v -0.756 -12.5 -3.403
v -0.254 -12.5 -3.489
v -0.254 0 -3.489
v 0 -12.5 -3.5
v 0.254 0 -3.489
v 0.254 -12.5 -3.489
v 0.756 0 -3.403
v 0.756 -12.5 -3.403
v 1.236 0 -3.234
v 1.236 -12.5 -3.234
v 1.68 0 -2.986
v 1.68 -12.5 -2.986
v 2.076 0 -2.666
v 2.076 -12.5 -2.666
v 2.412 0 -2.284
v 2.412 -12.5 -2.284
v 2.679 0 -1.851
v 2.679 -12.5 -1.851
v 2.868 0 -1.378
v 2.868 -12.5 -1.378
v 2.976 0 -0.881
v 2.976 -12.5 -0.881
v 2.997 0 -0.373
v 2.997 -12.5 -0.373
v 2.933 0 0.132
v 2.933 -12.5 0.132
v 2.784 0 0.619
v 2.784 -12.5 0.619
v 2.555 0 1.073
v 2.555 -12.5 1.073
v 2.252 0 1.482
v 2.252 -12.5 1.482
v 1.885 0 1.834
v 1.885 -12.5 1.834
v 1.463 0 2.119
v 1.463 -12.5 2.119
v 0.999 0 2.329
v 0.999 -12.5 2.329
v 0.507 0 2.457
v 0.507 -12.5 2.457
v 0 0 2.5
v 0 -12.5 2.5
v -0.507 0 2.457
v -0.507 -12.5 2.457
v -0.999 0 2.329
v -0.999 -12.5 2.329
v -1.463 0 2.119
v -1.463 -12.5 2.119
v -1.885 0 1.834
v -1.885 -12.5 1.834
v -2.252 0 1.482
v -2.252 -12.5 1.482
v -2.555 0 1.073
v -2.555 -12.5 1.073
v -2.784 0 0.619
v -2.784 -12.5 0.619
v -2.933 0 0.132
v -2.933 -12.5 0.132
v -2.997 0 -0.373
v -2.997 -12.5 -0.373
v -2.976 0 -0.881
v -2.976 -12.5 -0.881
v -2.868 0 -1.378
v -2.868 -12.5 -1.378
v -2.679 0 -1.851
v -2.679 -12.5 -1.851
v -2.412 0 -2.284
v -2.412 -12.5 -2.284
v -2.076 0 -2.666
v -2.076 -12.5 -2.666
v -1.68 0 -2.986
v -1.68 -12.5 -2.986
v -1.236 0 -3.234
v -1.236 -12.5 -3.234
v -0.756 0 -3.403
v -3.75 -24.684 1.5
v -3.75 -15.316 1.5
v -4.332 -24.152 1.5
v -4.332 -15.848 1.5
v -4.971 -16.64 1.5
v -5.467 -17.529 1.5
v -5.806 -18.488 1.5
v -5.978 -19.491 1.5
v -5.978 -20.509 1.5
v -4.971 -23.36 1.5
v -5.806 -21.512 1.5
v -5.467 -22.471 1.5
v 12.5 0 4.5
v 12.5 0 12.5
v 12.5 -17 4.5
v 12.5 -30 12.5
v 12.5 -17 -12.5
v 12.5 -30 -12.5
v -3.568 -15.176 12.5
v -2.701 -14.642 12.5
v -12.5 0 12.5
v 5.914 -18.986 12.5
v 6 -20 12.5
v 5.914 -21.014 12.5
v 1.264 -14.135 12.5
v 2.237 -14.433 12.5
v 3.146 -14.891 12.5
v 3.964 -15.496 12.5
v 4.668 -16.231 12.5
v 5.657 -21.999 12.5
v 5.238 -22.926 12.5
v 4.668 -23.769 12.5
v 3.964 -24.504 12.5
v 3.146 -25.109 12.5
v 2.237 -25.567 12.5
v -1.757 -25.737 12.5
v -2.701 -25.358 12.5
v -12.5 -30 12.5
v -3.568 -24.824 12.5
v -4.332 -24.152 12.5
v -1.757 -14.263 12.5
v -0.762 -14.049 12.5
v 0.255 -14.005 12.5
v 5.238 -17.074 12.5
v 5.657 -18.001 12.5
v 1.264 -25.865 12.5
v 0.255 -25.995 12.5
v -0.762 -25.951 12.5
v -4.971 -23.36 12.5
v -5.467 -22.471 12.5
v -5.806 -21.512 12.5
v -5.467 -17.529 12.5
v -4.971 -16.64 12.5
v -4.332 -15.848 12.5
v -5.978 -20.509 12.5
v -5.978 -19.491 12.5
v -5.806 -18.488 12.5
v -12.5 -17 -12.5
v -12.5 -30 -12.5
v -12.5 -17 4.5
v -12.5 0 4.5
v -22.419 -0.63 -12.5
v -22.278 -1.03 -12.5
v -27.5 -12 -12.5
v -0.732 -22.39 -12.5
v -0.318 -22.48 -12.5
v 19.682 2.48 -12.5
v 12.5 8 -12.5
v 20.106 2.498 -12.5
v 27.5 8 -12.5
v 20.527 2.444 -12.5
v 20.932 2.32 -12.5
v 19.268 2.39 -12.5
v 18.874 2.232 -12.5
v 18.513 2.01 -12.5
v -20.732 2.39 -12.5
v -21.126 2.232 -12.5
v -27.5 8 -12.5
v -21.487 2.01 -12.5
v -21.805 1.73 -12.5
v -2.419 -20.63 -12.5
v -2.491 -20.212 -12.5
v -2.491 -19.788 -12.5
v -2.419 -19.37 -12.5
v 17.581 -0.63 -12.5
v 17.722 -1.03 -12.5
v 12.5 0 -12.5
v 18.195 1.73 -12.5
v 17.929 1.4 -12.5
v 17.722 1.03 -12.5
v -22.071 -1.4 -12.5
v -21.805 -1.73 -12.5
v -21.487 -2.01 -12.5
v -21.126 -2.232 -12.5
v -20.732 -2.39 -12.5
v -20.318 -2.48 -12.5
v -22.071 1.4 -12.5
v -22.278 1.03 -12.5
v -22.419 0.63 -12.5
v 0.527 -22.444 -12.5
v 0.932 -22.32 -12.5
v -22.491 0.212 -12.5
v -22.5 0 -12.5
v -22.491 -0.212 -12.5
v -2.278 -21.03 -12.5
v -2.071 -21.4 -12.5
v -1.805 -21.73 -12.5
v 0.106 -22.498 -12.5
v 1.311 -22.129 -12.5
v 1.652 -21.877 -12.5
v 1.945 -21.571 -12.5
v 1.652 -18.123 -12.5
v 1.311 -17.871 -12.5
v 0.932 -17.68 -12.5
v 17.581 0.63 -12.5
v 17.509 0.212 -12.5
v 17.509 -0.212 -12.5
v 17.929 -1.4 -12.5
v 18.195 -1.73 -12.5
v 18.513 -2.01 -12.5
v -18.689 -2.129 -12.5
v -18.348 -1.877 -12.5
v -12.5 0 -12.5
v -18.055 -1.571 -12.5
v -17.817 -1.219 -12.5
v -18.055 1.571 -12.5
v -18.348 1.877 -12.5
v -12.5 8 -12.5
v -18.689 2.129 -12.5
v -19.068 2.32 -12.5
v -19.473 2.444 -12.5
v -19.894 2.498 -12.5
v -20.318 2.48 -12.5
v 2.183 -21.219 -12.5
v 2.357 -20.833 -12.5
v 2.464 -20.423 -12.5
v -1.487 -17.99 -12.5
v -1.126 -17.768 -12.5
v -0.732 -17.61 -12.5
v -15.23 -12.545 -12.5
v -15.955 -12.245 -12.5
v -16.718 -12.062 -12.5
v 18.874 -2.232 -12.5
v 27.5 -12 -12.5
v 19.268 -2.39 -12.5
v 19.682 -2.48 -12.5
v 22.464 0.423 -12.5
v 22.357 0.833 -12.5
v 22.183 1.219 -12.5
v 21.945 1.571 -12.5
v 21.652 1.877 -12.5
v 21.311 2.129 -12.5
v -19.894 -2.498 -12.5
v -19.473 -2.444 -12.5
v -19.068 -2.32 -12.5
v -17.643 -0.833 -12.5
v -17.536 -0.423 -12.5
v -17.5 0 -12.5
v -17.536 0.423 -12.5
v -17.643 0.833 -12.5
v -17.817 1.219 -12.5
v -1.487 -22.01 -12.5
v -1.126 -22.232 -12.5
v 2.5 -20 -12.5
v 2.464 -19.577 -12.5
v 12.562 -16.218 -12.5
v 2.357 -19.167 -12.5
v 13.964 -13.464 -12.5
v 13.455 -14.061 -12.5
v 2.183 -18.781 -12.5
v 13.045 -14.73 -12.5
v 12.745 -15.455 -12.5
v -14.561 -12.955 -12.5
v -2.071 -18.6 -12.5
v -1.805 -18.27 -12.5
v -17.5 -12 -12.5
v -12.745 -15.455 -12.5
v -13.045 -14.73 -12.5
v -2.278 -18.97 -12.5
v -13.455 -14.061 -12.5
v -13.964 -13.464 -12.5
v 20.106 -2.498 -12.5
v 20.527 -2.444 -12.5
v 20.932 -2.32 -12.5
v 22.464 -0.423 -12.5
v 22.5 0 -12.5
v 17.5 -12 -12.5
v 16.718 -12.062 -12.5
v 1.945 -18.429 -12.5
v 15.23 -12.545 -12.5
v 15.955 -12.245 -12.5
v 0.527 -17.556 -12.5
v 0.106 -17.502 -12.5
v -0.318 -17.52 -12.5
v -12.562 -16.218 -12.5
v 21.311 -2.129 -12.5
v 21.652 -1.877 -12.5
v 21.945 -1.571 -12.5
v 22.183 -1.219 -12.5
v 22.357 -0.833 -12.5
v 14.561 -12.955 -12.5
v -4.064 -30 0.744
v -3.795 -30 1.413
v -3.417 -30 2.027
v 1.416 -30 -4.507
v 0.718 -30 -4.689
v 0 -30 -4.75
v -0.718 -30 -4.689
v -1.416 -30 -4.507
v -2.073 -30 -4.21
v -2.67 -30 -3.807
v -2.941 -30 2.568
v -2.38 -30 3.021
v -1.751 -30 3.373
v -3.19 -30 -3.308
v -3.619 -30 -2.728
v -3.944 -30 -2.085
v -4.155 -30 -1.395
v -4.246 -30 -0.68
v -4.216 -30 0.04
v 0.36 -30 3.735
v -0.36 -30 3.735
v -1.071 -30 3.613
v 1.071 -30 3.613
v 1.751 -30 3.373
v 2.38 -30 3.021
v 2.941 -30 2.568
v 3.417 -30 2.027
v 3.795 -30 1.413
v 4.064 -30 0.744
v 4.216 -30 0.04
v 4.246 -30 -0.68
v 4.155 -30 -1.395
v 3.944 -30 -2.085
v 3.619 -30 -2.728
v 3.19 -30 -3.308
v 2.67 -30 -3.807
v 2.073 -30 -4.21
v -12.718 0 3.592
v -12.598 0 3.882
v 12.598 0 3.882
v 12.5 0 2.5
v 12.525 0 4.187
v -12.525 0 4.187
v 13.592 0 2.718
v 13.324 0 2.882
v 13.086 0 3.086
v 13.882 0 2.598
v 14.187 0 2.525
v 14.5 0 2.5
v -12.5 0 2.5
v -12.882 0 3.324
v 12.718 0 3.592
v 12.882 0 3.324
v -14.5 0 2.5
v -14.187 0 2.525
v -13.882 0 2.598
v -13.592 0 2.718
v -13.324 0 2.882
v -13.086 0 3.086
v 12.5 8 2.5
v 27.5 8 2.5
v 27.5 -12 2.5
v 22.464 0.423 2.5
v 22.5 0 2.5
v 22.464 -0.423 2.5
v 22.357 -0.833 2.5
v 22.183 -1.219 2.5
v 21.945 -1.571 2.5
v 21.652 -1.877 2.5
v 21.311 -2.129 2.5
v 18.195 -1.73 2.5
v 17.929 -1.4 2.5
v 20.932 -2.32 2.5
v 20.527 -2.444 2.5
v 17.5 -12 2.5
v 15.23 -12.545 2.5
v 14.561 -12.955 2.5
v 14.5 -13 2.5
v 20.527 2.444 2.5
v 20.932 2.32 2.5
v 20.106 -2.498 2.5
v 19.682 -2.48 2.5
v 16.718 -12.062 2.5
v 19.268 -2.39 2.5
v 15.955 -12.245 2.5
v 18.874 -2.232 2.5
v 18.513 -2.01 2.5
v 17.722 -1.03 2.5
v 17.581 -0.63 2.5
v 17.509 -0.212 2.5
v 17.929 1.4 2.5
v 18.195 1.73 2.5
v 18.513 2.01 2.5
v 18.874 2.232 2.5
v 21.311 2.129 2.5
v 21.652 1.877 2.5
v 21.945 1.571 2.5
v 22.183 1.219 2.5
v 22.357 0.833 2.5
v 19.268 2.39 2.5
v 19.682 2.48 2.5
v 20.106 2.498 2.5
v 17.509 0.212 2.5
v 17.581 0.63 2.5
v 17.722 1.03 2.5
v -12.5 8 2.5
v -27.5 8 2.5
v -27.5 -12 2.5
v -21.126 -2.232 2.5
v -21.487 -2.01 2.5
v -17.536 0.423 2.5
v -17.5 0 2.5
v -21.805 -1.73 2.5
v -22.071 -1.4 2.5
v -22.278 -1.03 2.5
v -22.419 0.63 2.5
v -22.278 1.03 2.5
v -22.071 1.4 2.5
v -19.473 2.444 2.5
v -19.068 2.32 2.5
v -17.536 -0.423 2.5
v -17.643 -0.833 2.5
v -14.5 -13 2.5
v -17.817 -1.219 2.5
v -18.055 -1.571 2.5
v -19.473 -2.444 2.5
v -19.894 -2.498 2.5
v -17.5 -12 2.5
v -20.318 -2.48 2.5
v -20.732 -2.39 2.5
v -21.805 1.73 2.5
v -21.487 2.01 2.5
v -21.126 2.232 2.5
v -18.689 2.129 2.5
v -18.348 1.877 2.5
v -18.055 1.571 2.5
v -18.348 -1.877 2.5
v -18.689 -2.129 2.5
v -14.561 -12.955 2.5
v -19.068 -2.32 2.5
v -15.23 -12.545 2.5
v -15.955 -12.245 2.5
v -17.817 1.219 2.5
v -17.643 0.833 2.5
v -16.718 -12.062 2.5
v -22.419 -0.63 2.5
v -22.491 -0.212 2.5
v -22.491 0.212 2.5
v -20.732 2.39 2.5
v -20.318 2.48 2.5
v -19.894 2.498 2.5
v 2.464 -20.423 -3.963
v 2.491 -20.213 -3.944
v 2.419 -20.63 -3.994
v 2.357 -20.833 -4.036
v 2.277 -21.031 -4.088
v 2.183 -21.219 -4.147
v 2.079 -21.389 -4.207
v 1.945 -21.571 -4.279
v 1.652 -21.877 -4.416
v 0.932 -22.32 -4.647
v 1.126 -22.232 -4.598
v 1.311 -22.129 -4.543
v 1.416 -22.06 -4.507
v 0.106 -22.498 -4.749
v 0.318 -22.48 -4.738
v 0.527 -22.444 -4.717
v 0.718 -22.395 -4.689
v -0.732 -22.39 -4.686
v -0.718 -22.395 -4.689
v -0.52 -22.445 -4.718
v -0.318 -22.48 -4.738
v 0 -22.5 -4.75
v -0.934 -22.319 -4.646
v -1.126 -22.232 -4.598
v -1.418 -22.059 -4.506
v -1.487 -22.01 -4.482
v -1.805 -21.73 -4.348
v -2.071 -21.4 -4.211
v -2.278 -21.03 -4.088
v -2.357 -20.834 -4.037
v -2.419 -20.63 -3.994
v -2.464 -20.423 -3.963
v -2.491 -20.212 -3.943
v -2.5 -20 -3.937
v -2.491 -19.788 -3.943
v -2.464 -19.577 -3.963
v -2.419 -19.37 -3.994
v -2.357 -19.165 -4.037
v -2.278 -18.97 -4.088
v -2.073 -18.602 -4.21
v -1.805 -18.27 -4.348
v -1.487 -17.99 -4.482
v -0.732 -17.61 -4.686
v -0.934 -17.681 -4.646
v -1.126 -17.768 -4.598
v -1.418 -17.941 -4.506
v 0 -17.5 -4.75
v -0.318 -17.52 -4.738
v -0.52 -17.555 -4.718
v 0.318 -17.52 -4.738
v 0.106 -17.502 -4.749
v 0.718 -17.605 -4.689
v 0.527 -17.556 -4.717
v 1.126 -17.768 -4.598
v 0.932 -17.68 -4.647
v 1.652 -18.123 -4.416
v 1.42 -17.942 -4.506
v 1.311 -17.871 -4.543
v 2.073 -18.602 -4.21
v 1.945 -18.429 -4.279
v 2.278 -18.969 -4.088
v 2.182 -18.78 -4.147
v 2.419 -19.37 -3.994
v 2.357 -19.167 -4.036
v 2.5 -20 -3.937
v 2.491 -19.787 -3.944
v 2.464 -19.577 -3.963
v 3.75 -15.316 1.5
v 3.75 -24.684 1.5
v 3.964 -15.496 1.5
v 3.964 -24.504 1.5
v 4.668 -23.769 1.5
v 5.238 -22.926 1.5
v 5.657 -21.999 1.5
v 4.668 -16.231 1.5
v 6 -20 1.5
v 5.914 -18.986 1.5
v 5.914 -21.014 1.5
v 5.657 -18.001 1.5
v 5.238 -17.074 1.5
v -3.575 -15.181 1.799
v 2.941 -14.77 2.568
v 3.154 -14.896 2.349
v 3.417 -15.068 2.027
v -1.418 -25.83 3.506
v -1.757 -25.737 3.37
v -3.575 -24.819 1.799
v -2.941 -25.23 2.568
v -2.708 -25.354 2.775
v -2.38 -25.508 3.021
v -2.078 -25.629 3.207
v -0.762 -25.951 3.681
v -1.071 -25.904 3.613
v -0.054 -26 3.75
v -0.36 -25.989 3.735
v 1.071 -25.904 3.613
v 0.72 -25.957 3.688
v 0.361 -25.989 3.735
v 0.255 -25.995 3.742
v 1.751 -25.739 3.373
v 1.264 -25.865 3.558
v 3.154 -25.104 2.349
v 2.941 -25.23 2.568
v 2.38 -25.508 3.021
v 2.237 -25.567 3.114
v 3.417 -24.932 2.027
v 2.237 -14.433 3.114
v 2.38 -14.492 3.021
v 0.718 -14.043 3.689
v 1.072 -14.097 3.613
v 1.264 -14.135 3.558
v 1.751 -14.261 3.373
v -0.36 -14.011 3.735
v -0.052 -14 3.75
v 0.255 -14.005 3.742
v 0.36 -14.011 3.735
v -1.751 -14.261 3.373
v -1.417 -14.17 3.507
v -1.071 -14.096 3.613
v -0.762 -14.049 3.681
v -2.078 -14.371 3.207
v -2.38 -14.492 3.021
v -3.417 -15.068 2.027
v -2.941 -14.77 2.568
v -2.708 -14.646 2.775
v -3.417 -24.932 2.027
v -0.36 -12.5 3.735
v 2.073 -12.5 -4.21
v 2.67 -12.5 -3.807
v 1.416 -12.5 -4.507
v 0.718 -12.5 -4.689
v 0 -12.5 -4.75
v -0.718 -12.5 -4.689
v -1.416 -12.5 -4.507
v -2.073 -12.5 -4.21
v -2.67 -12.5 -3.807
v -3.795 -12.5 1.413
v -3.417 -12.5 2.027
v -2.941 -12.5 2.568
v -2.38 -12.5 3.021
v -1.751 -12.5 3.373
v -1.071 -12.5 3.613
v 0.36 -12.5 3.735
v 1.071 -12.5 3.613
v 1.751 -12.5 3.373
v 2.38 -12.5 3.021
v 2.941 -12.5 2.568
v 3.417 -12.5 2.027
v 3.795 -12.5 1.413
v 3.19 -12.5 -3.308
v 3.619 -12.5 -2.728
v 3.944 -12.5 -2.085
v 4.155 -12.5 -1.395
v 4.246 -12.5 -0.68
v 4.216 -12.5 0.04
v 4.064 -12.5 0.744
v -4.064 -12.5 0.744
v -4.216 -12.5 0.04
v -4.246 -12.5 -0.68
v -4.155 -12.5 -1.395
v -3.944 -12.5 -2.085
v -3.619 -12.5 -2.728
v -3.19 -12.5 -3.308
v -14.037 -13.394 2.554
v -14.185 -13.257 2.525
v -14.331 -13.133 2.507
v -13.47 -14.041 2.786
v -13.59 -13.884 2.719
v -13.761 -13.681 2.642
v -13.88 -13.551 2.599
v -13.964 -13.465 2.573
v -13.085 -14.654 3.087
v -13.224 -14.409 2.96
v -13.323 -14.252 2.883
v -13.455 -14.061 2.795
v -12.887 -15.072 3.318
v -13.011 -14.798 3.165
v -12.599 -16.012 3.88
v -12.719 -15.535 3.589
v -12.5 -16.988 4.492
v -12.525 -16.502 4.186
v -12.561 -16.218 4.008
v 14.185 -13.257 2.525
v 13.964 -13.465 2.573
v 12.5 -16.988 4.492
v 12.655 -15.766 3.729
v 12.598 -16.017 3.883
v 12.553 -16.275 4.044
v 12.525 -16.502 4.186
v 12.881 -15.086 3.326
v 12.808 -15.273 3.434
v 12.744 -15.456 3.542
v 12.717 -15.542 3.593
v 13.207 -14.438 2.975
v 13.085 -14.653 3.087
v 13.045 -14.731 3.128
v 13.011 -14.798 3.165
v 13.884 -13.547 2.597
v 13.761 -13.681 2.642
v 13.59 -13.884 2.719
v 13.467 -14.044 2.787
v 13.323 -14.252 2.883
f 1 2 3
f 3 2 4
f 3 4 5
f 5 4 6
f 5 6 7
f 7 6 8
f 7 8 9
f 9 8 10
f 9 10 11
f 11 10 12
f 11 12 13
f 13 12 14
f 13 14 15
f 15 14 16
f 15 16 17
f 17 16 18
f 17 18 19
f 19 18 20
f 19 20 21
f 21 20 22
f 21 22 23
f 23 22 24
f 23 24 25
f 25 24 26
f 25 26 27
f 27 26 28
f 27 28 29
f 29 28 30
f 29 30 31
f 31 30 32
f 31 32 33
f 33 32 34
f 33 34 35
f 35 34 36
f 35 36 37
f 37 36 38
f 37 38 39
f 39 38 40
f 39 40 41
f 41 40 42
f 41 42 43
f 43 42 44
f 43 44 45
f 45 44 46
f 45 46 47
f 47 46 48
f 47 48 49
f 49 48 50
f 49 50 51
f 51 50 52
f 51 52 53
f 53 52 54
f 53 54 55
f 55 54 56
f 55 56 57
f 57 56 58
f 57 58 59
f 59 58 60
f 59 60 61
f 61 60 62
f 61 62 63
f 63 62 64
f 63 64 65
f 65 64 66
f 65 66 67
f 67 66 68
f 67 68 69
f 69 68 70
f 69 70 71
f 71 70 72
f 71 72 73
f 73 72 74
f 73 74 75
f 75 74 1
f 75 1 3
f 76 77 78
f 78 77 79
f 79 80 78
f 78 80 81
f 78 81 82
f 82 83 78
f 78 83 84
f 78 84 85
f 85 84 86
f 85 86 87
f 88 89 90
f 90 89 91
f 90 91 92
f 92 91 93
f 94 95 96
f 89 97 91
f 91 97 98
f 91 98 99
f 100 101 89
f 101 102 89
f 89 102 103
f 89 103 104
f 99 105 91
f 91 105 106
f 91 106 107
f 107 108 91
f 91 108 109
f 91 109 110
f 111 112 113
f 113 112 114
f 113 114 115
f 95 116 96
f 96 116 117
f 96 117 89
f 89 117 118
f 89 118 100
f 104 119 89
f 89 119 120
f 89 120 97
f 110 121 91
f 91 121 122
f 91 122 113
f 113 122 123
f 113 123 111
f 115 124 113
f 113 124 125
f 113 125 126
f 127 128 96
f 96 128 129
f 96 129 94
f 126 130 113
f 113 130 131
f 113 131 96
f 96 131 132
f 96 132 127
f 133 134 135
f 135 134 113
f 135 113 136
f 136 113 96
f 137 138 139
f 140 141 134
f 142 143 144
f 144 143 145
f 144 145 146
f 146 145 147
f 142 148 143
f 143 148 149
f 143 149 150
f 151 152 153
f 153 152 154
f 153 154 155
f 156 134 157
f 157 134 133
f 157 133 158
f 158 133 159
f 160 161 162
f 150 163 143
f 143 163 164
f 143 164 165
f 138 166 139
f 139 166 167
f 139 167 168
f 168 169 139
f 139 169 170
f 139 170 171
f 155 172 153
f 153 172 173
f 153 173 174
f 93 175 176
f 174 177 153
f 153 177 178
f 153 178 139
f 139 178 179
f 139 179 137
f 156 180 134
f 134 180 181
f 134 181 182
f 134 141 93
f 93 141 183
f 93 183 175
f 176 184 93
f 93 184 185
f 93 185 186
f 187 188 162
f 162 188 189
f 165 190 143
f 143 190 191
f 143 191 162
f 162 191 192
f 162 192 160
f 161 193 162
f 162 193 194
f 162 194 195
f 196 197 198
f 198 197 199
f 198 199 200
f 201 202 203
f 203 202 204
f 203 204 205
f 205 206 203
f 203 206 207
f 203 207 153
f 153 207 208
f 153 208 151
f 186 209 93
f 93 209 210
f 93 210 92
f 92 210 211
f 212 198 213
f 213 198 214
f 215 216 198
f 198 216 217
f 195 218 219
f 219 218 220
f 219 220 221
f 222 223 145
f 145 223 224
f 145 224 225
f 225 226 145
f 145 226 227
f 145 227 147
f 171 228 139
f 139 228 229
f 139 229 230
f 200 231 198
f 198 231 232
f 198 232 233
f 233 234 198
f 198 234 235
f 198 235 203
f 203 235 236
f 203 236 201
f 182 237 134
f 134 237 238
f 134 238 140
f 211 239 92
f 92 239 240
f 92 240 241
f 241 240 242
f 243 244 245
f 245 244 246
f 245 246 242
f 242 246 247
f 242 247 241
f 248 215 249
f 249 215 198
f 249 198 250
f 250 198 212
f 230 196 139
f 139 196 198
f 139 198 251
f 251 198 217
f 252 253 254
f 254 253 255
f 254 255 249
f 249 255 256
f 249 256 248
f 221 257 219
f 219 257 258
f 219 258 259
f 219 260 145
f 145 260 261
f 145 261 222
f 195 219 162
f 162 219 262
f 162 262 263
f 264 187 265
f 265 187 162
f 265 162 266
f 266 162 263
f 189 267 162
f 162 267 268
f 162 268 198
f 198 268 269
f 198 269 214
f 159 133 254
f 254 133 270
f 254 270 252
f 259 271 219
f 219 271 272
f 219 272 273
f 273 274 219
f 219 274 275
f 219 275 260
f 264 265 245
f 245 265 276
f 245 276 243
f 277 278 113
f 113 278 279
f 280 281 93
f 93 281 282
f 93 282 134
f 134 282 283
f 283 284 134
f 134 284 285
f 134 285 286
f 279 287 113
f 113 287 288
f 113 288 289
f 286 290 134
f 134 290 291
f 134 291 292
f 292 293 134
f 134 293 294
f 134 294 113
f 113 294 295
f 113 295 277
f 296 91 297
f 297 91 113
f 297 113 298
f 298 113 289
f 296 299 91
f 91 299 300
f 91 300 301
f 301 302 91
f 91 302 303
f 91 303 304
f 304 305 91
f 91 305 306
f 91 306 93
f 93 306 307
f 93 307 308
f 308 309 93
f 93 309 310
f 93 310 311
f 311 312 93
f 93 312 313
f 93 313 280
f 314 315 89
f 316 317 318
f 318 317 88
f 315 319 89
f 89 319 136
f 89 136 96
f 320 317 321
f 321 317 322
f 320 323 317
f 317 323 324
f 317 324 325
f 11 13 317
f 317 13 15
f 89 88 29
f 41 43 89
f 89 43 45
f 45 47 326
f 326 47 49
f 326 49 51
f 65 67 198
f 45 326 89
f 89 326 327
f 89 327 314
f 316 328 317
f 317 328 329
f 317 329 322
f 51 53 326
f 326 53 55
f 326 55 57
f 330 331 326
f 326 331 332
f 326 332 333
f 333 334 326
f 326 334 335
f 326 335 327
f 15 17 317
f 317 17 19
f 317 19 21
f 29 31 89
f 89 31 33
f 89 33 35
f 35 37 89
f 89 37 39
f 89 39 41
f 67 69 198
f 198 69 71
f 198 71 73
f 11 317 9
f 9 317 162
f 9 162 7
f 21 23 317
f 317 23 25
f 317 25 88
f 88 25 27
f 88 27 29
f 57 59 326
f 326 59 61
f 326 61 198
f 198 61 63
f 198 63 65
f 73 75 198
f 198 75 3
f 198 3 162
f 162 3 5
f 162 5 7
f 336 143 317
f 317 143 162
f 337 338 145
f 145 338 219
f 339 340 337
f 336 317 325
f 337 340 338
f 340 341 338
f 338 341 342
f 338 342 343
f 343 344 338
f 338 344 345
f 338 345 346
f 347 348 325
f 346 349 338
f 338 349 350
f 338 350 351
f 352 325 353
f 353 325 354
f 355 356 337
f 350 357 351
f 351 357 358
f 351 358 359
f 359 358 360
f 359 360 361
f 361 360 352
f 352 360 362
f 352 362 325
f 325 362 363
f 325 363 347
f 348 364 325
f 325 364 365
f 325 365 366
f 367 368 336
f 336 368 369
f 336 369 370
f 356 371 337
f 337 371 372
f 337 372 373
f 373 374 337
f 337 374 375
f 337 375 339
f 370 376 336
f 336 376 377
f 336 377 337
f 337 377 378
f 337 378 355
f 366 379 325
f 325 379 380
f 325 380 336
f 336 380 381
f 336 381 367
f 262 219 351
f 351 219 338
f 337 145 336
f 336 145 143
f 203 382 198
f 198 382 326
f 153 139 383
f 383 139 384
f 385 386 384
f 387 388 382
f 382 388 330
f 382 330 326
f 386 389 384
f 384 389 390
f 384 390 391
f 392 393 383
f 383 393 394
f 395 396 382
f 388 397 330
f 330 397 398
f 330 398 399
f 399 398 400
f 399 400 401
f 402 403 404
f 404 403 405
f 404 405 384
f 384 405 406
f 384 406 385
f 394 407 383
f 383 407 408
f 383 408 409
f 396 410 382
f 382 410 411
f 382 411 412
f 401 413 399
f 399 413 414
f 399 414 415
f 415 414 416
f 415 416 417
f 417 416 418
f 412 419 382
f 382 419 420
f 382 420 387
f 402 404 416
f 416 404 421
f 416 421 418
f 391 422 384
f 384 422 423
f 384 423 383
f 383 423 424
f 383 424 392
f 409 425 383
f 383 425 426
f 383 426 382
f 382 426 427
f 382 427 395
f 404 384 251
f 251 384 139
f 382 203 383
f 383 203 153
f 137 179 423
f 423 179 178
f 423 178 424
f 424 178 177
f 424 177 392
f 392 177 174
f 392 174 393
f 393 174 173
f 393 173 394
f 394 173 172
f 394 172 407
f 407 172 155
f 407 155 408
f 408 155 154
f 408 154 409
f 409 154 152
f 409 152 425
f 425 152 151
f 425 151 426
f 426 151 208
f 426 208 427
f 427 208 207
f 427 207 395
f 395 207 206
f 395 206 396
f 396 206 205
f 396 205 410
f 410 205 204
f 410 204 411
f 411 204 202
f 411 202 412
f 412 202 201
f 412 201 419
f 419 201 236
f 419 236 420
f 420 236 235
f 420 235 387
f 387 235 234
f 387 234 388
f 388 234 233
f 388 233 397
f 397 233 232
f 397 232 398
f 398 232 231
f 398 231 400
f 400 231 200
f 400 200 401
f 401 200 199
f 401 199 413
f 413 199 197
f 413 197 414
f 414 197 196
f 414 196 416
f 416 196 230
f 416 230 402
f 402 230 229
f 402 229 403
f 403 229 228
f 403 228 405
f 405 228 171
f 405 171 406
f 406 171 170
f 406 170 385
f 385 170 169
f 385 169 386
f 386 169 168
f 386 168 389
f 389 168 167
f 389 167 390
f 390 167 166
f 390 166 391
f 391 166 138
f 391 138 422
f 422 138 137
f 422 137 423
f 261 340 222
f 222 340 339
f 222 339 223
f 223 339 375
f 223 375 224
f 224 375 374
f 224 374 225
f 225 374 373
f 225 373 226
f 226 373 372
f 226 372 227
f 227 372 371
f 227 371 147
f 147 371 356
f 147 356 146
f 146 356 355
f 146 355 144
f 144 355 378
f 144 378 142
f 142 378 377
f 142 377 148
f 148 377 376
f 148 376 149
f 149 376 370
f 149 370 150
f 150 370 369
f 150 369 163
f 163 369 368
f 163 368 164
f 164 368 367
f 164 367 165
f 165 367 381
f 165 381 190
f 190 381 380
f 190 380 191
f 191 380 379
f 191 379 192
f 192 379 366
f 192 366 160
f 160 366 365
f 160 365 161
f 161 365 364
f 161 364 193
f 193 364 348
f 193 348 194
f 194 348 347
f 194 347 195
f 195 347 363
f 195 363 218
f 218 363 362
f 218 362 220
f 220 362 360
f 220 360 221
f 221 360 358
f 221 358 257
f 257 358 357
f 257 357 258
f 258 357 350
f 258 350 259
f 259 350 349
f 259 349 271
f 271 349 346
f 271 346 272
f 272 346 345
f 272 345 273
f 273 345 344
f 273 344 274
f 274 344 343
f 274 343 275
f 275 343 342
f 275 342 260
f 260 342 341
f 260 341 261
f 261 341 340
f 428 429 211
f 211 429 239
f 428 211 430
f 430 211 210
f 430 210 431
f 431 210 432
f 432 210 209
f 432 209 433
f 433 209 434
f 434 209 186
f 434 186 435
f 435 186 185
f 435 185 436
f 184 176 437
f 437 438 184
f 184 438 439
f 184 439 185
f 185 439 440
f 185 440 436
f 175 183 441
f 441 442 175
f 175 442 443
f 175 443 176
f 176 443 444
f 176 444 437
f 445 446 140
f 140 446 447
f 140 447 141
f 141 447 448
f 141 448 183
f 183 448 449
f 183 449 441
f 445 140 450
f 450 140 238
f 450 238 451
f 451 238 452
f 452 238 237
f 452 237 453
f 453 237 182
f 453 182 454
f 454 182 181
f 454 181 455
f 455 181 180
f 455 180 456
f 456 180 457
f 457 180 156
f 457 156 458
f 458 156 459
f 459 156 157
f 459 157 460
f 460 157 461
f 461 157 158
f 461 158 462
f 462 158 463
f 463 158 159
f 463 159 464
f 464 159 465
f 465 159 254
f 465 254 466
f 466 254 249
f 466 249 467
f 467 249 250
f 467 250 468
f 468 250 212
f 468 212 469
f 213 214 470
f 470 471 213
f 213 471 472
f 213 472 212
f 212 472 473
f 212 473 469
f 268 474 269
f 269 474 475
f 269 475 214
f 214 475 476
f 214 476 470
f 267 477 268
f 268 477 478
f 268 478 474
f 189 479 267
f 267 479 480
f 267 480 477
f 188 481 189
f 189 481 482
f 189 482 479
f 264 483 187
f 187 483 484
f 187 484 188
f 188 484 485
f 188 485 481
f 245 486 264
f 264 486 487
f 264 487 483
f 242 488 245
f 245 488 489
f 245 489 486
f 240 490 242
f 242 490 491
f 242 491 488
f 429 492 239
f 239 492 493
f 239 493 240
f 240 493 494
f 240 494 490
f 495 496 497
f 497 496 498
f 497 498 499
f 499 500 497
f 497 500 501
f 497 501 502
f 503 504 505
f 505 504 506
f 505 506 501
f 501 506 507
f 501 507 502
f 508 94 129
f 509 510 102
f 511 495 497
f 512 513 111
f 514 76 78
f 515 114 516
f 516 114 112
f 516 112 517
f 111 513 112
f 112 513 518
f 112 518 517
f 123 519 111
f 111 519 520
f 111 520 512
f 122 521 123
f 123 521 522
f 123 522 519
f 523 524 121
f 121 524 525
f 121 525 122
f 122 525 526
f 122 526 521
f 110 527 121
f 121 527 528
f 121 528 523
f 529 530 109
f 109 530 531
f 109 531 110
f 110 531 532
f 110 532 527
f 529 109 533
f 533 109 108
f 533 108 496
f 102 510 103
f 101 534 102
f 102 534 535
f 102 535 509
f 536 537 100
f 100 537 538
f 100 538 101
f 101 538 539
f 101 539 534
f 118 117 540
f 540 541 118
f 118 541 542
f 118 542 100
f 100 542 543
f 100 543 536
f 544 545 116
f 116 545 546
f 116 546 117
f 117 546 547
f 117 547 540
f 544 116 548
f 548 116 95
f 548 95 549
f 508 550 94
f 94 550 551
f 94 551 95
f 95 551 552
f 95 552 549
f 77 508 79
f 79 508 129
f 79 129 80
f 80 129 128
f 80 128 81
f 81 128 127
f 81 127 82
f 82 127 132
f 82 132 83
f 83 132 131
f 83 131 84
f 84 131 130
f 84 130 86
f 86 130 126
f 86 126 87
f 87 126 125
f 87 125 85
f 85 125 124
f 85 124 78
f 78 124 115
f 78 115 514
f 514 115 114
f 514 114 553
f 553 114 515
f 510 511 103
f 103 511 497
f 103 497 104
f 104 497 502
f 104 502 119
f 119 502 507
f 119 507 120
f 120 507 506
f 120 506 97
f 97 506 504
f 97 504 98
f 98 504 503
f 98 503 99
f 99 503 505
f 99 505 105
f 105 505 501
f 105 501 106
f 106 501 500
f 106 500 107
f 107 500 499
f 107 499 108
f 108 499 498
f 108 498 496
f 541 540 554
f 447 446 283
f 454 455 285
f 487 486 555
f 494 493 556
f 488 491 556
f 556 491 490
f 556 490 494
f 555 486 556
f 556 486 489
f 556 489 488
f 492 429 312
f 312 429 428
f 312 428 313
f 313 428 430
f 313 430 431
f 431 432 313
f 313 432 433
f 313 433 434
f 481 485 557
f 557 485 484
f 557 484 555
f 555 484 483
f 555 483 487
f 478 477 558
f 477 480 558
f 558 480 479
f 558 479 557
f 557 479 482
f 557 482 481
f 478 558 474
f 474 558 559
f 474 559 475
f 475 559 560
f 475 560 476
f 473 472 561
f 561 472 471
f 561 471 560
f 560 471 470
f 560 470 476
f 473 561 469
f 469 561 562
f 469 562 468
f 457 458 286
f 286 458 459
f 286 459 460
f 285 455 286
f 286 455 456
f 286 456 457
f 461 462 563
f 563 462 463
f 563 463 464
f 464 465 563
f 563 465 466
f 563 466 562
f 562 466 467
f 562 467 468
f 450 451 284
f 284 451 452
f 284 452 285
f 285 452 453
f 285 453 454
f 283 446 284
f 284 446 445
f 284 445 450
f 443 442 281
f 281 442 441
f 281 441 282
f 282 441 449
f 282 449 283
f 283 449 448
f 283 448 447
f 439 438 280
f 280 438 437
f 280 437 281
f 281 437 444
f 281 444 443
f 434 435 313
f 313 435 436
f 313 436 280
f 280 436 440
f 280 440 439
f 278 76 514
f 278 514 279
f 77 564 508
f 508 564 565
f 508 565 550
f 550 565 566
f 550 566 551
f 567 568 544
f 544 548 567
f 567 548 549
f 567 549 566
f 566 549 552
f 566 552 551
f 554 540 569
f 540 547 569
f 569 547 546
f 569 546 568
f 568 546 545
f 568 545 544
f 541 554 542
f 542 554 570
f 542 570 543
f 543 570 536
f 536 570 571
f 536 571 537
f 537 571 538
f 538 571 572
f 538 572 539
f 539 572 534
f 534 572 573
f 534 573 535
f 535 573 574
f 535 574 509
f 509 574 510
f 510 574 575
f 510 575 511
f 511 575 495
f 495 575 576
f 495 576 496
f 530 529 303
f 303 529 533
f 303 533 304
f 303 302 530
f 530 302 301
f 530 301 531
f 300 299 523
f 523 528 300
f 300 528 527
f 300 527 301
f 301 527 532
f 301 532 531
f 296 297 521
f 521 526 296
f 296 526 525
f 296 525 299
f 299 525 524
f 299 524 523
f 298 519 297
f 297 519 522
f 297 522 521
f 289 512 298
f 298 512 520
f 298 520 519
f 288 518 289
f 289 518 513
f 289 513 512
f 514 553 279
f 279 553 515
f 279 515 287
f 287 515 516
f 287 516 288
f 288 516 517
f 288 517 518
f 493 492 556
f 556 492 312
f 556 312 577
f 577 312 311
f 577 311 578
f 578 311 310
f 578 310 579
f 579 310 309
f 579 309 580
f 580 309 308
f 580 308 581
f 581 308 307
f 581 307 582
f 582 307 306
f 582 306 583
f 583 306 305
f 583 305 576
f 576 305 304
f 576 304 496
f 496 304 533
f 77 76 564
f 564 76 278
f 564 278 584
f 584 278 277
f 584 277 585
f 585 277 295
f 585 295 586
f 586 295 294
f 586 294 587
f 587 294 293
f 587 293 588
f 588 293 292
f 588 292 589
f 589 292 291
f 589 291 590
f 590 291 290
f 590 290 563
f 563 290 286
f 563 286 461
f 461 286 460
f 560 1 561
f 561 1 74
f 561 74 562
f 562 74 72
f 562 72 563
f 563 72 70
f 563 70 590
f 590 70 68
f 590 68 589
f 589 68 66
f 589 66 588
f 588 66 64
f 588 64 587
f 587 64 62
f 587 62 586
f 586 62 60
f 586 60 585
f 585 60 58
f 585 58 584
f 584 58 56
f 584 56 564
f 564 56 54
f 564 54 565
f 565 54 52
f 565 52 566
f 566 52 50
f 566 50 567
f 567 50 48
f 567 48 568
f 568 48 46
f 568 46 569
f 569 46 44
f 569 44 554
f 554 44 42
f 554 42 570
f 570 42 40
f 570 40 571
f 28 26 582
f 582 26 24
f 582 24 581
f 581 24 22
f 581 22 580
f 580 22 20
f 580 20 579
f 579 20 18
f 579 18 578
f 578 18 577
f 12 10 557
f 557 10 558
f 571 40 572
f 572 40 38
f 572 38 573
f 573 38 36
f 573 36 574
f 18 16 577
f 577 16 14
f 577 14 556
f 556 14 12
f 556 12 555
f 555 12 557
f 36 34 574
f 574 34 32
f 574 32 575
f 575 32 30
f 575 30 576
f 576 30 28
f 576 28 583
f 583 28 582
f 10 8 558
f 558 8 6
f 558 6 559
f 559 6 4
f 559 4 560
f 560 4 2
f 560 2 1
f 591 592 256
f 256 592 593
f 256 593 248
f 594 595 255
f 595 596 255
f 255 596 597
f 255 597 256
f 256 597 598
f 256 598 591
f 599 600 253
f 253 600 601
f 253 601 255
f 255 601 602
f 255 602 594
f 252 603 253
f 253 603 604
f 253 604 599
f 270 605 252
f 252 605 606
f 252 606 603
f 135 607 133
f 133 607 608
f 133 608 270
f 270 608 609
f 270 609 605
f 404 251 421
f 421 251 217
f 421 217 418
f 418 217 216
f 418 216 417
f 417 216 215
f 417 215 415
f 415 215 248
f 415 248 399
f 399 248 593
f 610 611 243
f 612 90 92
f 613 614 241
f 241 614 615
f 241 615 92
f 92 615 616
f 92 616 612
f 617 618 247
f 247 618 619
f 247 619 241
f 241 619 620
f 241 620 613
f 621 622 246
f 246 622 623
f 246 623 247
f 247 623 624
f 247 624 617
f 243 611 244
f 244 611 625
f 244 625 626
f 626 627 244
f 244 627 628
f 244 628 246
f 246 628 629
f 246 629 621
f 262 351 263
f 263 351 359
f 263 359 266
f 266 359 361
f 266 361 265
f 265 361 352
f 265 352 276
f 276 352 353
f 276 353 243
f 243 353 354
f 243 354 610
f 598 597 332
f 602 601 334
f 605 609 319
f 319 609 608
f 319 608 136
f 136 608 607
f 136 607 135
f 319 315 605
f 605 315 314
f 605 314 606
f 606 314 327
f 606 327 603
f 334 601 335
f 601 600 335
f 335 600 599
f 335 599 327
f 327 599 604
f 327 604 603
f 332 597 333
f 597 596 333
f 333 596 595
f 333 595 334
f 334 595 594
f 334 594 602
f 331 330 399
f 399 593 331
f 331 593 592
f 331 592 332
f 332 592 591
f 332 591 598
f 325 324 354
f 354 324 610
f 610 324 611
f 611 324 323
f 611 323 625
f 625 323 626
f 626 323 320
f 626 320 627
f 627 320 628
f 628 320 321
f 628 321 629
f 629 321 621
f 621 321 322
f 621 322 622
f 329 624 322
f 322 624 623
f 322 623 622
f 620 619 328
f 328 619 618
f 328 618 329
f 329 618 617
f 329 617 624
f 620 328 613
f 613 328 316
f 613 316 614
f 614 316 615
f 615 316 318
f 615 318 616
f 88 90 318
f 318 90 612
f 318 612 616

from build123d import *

# Parameters (mm, degrees)
SKETCH1_W                = 25
SKETCH1_H                = 25
BOSS_EXTRUDE1_DEPTH      = 30
SKETCH6_W                = 15
SKETCH6_H                = 15
BOSS_EXTRUDE2_DEPTH      = 8
BOSS_EXTRUDE2_DEPTH_BACK = 12
SKETCH3_R                = 2.5
CUT_EXTRUDE1_DEPTH       = 13.5
CUT_EXTRUDE1_DEPTH_BACK  = 13.5
SKETCH5_R                = 6
CUT_EXTRUDE4_DEPTH       = 11
SKETCH2_R                = 3
CUT_EXTRUDE6_DEPTH       = 31
SKETCH4_R                = 4.25
CUT_EXTRUDE3_DEPTH       = 17.5
FILLET1_R                = 5
FILLET2_R                = 2


with BuildPart() as part:
    # Sketch1 → Boss-Extrude1 (new body)
    with BuildSketch(Plane(origin=(0, 0, 0), x_dir=(1, 0, 0), z_dir=(0, 1, 0))):
        Rectangle(SKETCH1_W, SKETCH1_H)
    extrude(amount=-BOSS_EXTRUDE1_DEPTH)

    # Sketch6 → Boss-Extrude2 (add, two sides)
    with BuildSketch(Plane(origin=(0, 0, 0), x_dir=(1, 0, 0), z_dir=(0, 1, 0))) as boss_extrude2_sk:
        with Locations((20, 5)):
            Rectangle(SKETCH6_W, SKETCH6_H)
        with Locations((-20, 5)):
            Rectangle(SKETCH6_W, SKETCH6_H)
    extrude(amount=BOSS_EXTRUDE2_DEPTH)
    extrude(boss_extrude2_sk.sketch, amount=-BOSS_EXTRUDE2_DEPTH_BACK)

    # Sketch3 → Cut-Extrude1 (cut, two sides)
    with BuildSketch(Plane.XY) as cut_extrude1_sk:
        with Locations((0, -20)):
            Circle(SKETCH3_R)
        with Locations((20, 0)):
            Circle(SKETCH3_R)
        with Locations((-20, 0)):
            Circle(SKETCH3_R)
    extrude(amount=CUT_EXTRUDE1_DEPTH, mode=Mode.SUBTRACT)
    extrude(cut_extrude1_sk.sketch, amount=-CUT_EXTRUDE1_DEPTH_BACK, mode=Mode.SUBTRACT)

    # Sketch5 → Cut-Extrude4 (cut)
    with BuildSketch(Plane.XY.offset(12.5)):
        with Locations((0, -20)):
            Circle(SKETCH5_R)
    extrude(amount=-CUT_EXTRUDE4_DEPTH, mode=Mode.SUBTRACT)

    # Sketch2 → Cut-Extrude6 (cut, through all)
    with BuildSketch(Plane(origin=(0, 0, 0), x_dir=(1, 0, 0), z_dir=(0, 1, 0))):
        with Locations((0, 0.5)):
            Circle(SKETCH2_R)
    extrude(amount=-CUT_EXTRUDE6_DEPTH, mode=Mode.SUBTRACT)

    # Sketch4 → Cut-Extrude3 (cut)
    with BuildSketch(Plane.XZ.offset(30)):
        with Locations((0, -0.5)):
            Circle(SKETCH4_R)
    extrude(amount=-CUT_EXTRUDE3_DEPTH, mode=Mode.SUBTRACT)

    # Fillet1
    fillet1_edges = [part.edges().sort_by_distance(p)[0] for p in [
        (12.5, -12, -5),
        (-12.5, -12, -5),
    ]]
    fillet(fillet1_edges, radius=FILLET1_R)

    # Fillet2
    fillet2_edges = [part.edges().sort_by_distance(p)[0] for p in [
        (12.5, -6, 2.5),
        (-12.5, -6, 2.5),
    ]]
    fillet(fillet2_edges, radius=FILLET2_R)


solid = part.part
